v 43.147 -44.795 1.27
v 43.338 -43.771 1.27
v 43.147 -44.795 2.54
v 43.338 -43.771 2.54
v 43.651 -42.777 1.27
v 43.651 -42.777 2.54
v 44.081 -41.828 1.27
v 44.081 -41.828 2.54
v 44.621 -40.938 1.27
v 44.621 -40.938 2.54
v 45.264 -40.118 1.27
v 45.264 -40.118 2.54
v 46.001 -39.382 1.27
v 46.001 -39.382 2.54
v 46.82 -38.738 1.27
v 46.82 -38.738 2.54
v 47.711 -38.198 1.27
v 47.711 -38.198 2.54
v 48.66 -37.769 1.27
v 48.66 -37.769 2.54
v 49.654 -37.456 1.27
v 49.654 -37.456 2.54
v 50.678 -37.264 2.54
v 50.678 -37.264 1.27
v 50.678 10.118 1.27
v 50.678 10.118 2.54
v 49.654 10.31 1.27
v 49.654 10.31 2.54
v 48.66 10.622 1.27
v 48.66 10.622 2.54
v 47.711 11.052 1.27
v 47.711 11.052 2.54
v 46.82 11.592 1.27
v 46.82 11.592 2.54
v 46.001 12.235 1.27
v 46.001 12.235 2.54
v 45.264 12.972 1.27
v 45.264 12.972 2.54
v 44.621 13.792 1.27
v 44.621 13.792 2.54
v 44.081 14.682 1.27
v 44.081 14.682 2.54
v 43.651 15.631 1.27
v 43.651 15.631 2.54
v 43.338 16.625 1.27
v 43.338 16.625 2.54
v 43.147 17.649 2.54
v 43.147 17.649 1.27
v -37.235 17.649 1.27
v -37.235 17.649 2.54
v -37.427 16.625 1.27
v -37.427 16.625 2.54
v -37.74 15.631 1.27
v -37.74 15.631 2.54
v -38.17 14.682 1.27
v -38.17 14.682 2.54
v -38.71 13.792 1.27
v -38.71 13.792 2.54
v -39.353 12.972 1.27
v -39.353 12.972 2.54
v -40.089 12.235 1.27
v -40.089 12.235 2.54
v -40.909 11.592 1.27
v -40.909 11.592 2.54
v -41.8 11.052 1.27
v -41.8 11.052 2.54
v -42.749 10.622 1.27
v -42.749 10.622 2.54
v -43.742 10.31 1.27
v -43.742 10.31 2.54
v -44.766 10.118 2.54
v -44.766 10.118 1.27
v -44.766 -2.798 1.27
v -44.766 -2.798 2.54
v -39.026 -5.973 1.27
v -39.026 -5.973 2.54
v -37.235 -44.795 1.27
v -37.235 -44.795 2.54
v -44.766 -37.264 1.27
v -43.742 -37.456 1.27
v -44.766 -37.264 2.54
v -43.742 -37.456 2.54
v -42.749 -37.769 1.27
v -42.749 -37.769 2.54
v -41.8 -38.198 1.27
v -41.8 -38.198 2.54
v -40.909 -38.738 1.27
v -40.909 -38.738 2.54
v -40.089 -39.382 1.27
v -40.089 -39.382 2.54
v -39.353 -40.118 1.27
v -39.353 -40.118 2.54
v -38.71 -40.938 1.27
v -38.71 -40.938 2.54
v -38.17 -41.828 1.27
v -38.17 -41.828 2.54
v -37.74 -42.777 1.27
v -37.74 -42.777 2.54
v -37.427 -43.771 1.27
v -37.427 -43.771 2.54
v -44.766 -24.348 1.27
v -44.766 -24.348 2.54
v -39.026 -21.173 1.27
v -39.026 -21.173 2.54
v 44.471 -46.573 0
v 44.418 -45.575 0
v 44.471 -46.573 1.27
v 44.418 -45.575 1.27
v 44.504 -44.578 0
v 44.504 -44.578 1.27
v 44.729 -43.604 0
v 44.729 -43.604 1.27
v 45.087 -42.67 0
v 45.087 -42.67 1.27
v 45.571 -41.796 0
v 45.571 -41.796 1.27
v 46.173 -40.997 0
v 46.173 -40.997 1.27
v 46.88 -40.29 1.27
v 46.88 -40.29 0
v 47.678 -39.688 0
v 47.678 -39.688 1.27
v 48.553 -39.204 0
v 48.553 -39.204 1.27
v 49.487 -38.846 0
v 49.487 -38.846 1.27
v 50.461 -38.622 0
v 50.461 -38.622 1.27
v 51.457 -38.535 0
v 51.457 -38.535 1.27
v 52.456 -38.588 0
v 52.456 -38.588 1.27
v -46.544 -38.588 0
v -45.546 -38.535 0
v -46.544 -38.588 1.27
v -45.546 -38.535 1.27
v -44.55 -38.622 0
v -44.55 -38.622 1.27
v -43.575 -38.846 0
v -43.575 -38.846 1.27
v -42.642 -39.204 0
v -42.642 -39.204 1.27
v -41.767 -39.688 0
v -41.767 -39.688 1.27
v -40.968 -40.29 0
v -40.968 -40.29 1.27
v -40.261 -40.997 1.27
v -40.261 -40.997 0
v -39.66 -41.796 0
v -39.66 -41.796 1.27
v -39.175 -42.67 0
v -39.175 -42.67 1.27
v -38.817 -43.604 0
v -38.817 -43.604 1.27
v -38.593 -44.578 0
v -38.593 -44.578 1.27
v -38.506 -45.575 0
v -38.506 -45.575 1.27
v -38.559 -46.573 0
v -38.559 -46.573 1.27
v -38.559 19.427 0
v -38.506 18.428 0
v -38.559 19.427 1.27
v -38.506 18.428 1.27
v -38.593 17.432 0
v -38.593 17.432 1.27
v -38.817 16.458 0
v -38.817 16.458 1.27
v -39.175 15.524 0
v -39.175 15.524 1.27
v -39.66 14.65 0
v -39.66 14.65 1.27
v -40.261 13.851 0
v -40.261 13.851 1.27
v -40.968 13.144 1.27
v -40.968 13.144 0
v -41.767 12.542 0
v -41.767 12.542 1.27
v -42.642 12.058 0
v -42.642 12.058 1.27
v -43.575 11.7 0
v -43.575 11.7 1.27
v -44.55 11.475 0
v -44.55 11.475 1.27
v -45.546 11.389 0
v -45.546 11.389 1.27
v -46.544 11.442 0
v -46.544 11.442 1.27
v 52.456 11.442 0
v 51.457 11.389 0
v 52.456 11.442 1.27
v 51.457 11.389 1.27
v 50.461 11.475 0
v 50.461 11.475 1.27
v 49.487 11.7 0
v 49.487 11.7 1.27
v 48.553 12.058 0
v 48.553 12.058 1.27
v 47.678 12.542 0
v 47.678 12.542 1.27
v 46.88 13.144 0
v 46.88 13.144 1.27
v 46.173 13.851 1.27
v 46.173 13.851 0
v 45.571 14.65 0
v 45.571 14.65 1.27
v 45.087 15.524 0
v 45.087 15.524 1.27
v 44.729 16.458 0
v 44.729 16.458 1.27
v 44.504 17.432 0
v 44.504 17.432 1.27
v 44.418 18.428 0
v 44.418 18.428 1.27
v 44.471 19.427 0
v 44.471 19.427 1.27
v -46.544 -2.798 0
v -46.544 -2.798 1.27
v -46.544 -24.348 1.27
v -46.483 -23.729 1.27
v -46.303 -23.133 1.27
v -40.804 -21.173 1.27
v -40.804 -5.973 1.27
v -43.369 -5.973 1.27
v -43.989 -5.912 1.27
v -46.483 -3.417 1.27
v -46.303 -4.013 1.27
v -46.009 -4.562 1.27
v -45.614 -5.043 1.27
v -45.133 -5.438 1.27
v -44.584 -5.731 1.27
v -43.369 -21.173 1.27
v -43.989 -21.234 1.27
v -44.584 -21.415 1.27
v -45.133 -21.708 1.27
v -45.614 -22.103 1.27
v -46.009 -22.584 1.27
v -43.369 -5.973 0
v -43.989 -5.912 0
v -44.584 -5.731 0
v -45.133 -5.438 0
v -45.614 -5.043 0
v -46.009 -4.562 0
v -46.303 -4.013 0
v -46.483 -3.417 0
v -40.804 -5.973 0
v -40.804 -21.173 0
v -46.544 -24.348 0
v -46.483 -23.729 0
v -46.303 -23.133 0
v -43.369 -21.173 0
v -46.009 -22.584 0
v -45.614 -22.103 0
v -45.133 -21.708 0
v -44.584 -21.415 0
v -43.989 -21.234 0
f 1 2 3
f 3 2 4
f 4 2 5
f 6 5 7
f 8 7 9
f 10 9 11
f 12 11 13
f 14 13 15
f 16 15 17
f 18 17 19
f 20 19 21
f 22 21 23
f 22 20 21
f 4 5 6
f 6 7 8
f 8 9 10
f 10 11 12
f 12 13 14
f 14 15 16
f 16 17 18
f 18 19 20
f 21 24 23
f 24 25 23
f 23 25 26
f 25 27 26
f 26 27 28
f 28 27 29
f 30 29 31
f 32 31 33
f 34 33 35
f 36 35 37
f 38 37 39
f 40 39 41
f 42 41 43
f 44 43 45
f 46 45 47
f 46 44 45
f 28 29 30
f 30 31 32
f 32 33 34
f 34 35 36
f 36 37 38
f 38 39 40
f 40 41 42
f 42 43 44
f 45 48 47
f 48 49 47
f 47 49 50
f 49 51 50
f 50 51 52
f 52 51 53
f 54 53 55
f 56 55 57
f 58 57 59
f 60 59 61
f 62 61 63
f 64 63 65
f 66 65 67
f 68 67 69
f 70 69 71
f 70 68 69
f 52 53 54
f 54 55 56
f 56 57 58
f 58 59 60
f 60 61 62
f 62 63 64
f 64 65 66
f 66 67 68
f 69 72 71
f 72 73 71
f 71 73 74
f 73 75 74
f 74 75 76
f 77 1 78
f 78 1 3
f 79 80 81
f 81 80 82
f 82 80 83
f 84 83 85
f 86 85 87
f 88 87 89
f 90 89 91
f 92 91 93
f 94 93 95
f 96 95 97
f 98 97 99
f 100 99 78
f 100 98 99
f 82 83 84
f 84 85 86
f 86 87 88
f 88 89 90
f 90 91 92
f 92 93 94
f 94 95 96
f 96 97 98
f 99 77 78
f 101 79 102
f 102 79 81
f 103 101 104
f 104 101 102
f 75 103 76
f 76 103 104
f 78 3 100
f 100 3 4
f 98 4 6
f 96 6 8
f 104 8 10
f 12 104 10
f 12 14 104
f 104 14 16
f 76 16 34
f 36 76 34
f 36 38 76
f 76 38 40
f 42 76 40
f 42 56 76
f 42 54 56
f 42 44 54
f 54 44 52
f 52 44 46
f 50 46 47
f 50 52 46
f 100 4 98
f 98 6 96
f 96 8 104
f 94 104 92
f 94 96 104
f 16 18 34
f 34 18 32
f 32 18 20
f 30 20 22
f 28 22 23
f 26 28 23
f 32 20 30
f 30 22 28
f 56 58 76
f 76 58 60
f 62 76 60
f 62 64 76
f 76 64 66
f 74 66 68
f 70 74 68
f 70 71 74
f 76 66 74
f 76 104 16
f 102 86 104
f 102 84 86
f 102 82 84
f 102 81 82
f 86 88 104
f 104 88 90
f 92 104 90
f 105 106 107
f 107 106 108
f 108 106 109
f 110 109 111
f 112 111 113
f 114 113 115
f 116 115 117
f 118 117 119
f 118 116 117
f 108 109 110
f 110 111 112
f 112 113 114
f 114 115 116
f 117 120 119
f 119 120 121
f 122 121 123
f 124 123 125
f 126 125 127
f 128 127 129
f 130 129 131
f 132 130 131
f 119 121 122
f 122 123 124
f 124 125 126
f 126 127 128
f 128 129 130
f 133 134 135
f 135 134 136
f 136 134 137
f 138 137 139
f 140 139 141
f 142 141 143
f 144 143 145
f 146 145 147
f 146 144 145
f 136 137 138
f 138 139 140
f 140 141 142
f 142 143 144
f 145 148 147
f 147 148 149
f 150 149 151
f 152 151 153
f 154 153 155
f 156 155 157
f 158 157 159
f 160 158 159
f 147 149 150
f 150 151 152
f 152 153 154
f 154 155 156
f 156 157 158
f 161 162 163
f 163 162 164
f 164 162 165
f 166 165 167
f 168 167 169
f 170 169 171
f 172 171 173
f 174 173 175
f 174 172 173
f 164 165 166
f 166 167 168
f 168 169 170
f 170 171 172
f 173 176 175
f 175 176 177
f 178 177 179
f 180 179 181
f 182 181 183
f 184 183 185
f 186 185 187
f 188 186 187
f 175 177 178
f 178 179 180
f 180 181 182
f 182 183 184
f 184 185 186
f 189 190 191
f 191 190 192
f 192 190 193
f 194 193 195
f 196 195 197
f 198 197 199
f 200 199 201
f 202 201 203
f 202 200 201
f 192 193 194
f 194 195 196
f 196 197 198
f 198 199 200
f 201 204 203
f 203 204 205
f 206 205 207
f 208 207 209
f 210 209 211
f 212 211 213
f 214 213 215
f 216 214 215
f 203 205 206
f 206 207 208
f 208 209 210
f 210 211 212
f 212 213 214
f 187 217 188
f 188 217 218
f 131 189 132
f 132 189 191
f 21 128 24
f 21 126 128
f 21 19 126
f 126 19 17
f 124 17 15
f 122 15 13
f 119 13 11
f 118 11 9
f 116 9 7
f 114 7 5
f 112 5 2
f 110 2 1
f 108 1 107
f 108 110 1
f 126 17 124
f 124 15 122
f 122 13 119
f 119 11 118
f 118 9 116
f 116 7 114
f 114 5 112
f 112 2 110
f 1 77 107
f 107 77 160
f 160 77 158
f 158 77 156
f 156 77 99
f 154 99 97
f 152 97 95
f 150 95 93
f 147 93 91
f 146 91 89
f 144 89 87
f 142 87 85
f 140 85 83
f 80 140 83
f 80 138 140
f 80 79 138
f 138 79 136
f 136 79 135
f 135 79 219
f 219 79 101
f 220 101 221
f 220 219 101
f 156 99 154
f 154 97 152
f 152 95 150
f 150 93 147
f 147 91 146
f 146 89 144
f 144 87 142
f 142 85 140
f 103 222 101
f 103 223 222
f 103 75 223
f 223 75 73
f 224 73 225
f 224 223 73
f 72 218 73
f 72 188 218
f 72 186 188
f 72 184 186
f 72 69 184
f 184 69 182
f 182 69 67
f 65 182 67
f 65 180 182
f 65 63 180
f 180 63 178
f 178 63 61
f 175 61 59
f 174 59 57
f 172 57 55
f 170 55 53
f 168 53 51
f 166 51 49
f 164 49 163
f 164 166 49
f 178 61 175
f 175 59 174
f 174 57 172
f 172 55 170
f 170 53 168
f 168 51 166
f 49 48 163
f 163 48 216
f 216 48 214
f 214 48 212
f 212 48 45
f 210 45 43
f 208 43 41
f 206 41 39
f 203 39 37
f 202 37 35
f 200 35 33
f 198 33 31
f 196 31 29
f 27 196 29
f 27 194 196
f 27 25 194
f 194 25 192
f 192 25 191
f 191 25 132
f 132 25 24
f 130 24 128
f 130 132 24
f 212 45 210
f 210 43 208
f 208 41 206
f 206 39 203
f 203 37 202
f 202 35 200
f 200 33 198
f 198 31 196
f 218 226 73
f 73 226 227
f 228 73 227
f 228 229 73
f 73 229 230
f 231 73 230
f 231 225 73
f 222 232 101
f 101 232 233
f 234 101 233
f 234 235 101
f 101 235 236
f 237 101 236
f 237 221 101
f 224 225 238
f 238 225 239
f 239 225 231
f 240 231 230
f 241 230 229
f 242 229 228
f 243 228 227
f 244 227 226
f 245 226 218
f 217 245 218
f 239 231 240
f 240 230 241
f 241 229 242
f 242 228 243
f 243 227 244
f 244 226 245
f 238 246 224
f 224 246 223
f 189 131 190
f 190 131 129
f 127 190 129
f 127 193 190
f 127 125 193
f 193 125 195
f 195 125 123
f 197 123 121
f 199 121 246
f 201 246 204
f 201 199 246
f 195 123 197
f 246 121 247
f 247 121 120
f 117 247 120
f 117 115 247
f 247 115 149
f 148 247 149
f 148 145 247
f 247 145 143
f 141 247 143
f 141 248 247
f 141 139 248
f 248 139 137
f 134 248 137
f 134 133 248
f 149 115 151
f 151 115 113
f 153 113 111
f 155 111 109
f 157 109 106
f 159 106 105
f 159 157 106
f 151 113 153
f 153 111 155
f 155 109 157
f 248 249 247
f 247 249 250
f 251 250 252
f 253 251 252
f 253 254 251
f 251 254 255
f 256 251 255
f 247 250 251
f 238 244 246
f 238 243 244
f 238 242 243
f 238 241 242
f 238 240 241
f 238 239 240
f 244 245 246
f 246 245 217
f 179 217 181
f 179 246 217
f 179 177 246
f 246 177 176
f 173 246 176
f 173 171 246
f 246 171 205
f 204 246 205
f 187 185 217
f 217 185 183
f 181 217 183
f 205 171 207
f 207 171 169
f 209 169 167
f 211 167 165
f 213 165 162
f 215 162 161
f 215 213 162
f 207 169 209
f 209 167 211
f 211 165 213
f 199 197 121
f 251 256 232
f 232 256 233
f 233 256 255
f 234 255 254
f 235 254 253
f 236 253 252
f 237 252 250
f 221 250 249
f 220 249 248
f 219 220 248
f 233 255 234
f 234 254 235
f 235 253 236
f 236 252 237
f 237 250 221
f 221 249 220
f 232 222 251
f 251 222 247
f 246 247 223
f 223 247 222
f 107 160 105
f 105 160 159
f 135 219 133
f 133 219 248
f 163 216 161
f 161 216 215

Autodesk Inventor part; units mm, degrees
ref_plane "YZ Plane" through (0, 0, 0) normal (1, 0, 0) x (0, 1, 0)
ref_plane "XZ Plane" through (0, 0, 0) normal (0, 1, 0) x (-1, 0, 0)
ref_plane "XY Plane" through (0, 0, 0) normal (0, 0, 1) x (1, 0, 0)
sketch "Sketch1" plane through (0, 0, 0) normal (0, 0, 1) x (1, 0, 0)
  line L0 (-43.5443, 19.427) -> (49.4557, 19.427)
  line L1 (52.4557, 16.427) -> (52.4557, -43.573)
  line L2 (49.4557, -46.573) -> (-43.5443, -46.573)
  line L3 (-46.5443, -43.573) -> (-46.5443, 16.427)
  arc A0 (-43.5443, 19.427) -> (-46.5443, 16.427) centre (-43.5443, 16.427) ccw
  arc A1 (-46.5443, -43.573) -> (-43.5443, -46.573) centre (-43.5443, -43.573) ccw
  arc A2 (49.4557, -46.573) -> (52.4557, -43.573) centre (49.4557, -43.573) ccw
  arc A3 (52.4557, 16.427) -> (49.4557, 19.427) centre (49.4557, 16.427) ccw
  point P0 (0, 0)
  point P1 (0, 0)
  point P2 (-46.5443, 19.427)
  point P3 (52.4557, -46.573)
  point P4 (52.4557, 19.427)
  dimension "d0" = 99
  dimension "d1" = 66
  dimension "d2" = 3
extrude "Extrusion1" add sketch "Sketch1" along normal blind 1.27
sketch "Sketch2" plane through (0, 0, 1.27) normal (0, 0, 1) x (1, 0, 0)
  line L0 (-46.5443, 16.427) -> (-46.5443, -43.573) projected
  line L1 (49.4557, 19.427) -> (-43.5443, 19.427) projected
  circle A0 centre (-42.7343, 15.617) radius 1.5875
  line L2 (-50.0562, -13.573) -> (79.0191, -13.573) construction
  line L3 (2.9557, 30.2203) -> (2.9557, -48.7988) construction
  circle A1 centre (-42.7343, -42.763) radius 1.5875
  circle A2 centre (48.6457, 15.617) radius 1.5875
  circle A3 centre (48.6457, -42.763) radius 1.5875
  point P0 (0, 0)
  dimension "d8" = 3.175
  dimension "d9" = 3.81
  dimension "d10" = 3.81
extrude "Extrusion2" cut sketch "Sketch2" against normal blind 25.4
sketch "Sketch3" plane through (0, 0, 1.27) normal (0, 0, 1) x (1, 0, 0)
  circle A0 centre (48.6457, 15.617) radius 1.5875 projected
  circle A1 centre (-42.7343, 15.617) radius 1.5875 projected
  circle A2 centre (-42.7343, -42.763) radius 1.5875 projected
  circle A3 centre (48.6457, -42.763) radius 1.5875 projected
  line L0 (49.4557, 19.427) -> (-43.5443, 19.427) projected
  arc A4 (-43.5443, 19.427) -> (-46.5443, 16.427) centre (-43.5443, 16.427) ccw projected
  line L1 (-46.5443, 16.427) -> (-46.5443, -43.573) construction
  arc A5 (-46.5443, -43.573) -> (-43.5443, -46.573) centre (-43.5443, -43.573) ccw projected
  line L2 (-43.5443, -46.573) -> (49.4557, -46.573) projected
  arc A6 (49.4557, -46.573) -> (52.4557, -43.573) centre (49.4557, -43.573) ccw projected
  line L3 (52.4557, -43.573) -> (52.4557, 16.427) projected
  arc A7 (52.4557, 16.427) -> (49.4557, 19.427) centre (49.4557, 16.427) ccw projected
  arc A8 (-43.5443, 19.427) -> (-46.5443, 16.427) centre (-43.5443, 16.427) ccw projected
  line L4 (49.4557, 19.427) -> (-43.5443, 19.427) projected
  circle A9 centre (48.6457, 15.617) radius 1.5875 projected
  circle A10 centre (-42.7343, 15.617) radius 1.5875 projected
  circle A11 centre (-42.7343, -42.763) radius 1.5875 projected
  circle A12 centre (48.6457, -42.763) radius 1.5875 projected
  arc A13 (52.4557, 16.427) -> (49.4557, 19.427) centre (49.4557, 16.427) ccw projected
  line L5 (52.4557, 16.427) -> (52.4557, -43.573) projected
  arc A14 (49.4557, -46.573) -> (52.4557, -43.573) centre (49.4557, -43.573) ccw projected
  line L6 (49.4557, -46.573) -> (-43.5443, -46.573) projected
  arc A15 (-46.5443, -43.573) -> (-43.5443, -46.573) centre (-43.5443, -43.573) ccw projected
  line L7 (-46.5443, -43.573) -> (-46.5443, 16.427) projected
  arc A16 (-43.5443, 19.427) -> (-46.5443, 16.427) centre (-43.5443, 16.427) ccw projected
  line L8 (-43.5443, 19.427) -> (49.4557, 19.427) projected
  line L9 (-43.5443, 19.427) -> (49.4557, 19.427) projected
  line L10 (-40.8039, 19.427) -> (-40.8039, -46.573) construction
  line L11 (49.4557, -46.573) -> (-43.5443, -46.573) projected
  line L12 (-40.8039, 19.427) -> (-51.3078, 19.427) construction
  line L13 (-40.8039, -46.573) -> (-51.3078, -46.573) construction
  line L14 (-40.8039, -21.173) -> (-51.3078, -21.173) construction
  line L15 (-40.8039, -5.973) -> (-51.3078, -5.973) construction
  line L16 (-46.5443, -43.573) -> (-46.5443, 16.427) projected
  line L17 (-46.5443, -5.973) -> (-40.8039, -5.973)
  line L18 (-40.8039, -5.973) -> (-40.8039, -21.173)
  line L19 (-40.8039, -21.173) -> (-46.5443, -21.173)
  line L20 (-46.5443, -21.173) -> (-46.5443, -5.973)
  point P0 (0, 0)
  dimension "d13" = 25.4
  dimension "d14" = 25.4
  dimension "d15" = 5.7404
extrude "Extrusion3" cut sketch "Sketch3" against normal blind 25.4 contours L17 L18 L19 L7
fillet "Fillet1" radius 3.175 2 edges at (-46.5443, -21.173, 0.635) (-46.5443, -5.973, 0.635)
sketch "Sketch9" plane through (0, 0, 1.27) normal (0, 0, 1) x (1, 0, 0)
  arc A0 (-43.5443, 19.427) -> (-46.5443, 16.427) centre (-43.5443, 16.427) ccw projected
  line L0 (-46.5443, -2.798) -> (-46.5443, 16.427) construction
  line L1 (-46.5443, 16.427) -> (-46.5443, -2.798)
  line L2 (-43.5443, 19.427) -> (-26.5771, 19.427) construction
  line L3 (49.4557, 19.427) -> (-43.5443, 19.427) projected
  line L4 (-45.6657, 18.5483) -> (-26.5771, -0.5403) construction
  line L5 (-45.6657, 18.5483) -> (-18.6704, 18.5483) construction
  circle A1 centre (-45.6657, 18.5483) radius 7.1603
  arc A2 (-46.5443, -2.798) -> (-43.3693, -5.973) centre (-43.3693, -2.798) ccw projected
  line L6 (-43.3693, -5.973) -> (-40.8039, -5.973) projected
  line L7 (-40.8039, -5.973) -> (-40.8039, -21.173) projected
  line L8 (-40.8039, -21.173) -> (-43.3693, -21.173) projected
  arc A3 (-43.3693, -21.173) -> (-46.5443, -24.348) centre (-43.3693, -24.348) ccw projected
  line L9 (-46.5443, -24.348) -> (-46.5443, -43.573) projected
  arc A4 (-46.5443, -43.573) -> (-43.5443, -46.573) centre (-43.5443, -43.573) ccw projected
  line L10 (-43.5443, -46.573) -> (49.4557, -46.573) projected
  arc A5 (49.4557, -46.573) -> (52.4557, -43.573) centre (49.4557, -43.573) ccw projected
  line L11 (52.4557, -43.573) -> (52.4557, 16.427) projected
  arc A6 (52.4557, 16.427) -> (49.4557, 19.427) centre (49.4557, 16.427) ccw projected
  line L12 (49.4557, 19.427) -> (-43.5443, 19.427) projected
  arc A7 (-43.5443, 19.427) -> (-46.5443, 16.427) centre (-43.5443, 16.427) ccw projected
  line L13 (-46.5443, 16.427) -> (-46.5443, -2.798) projected
  circle A8 centre (48.6457, 15.617) radius 1.5875 projected
  circle A9 centre (-42.7343, 15.617) radius 1.5875 projected
  circle A10 centre (-42.7343, -42.763) radius 1.5875 projected
  circle A11 centre (48.6457, -42.763) radius 1.5875 projected
  line L14 (-75.7777, -13.573) -> (114.1059, -13.573) construction
  line L15 (2.9557, 31.1348) -> (2.9557, -53.319) construction
  circle A12 centre (-45.6657, -45.6944) radius 7.1603
  line L16 (2.9557, -58.2809) -> (2.9557, 26.1729) construction
  circle A13 centre (51.577, 18.5483) radius 7.1603
  circle A14 centre (51.577, -45.6944) radius 7.1603
  point P0 (0, 0)
  dimension "d28" = 45
extrude "Extrusion5" cut sketch "Sketch9" against normal blind 12.7 contours L3 A1 L1 A0 | A0 L1 A1 L3 | A13 L11 A6 L3 | L3 A6 L11 A13 | A14 L10 A5 L11 | L11 A5 L10 A14 | A12 L9 A4 L10 | L10 A4 L9 A12
sketch "Sketch10" plane through (0, 0, 1.27) normal (0, 0, 1) x (1, 0, 0)
  arc A0 (52.4557, -38.5882) -> (44.4708, -46.573) centre (51.577, -45.6944) ccw projected
  line L0 (52.4557, -38.5882) -> (52.4557, 11.4421) projected
  arc A1 (44.4708, 19.427) -> (52.4557, 11.4421) centre (51.577, 18.5483) ccw projected
  line L1 (44.4708, 19.427) -> (-38.5595, 19.427) projected
  arc A2 (-46.5443, 11.4421) -> (-38.5595, 19.427) centre (-45.6657, 18.5483) ccw projected
  line L2 (-46.5443, 11.4421) -> (-46.5443, -2.798) projected
  arc A3 (-46.5443, -2.798) -> (-43.3693, -5.973) centre (-43.3693, -2.798) ccw projected
  line L3 (-43.3693, -5.973) -> (-40.8039, -5.973) projected
  line L4 (-40.8039, -5.973) -> (-40.8039, -21.173) projected
  line L5 (-40.8039, -21.173) -> (-43.3693, -21.173) projected
  arc A4 (-43.3693, -21.173) -> (-46.5443, -24.348) centre (-43.3693, -24.348) ccw projected
  line L6 (-46.5443, -24.348) -> (-46.5443, -38.5882) projected
  arc A5 (-38.5595, -46.573) -> (-46.5443, -38.5882) centre (-45.6657, -45.6944) ccw projected
  line L7 (-38.5595, -46.573) -> (44.4708, -46.573) projected
  line L8 (-36.7645, -44.795) -> (43.1467, -44.795)
  line L9 (-36.7645, 17.649) -> (43.1467, 17.649)
  line L10 (44.4708, 19.427) -> (-38.5595, 19.427) projected
  line L11 (-36.7645, -44.795) -> (-37.2354, -44.795)
  arc A6 (-38.5595, -46.573) -> (-46.5443, -38.5882) centre (-45.6657, -45.6944) ccw projected
  line L12 (-36.7645, 17.649) -> (-37.2354, 17.649)
  line L13 (50.6777, 10.118) -> (50.6777, -37.264)
  arc A7 (44.4708, 19.427) -> (52.4557, 11.4421) centre (51.577, 18.5483) ccw projected
  line L14 (-39.0259, -5.973) -> (-39.0259, -21.173)
  line L15 (-44.7663, -2.798) -> (-39.0259, -5.973)
  line L16 (-39.0259, -21.173) -> (-44.7663, -24.348)
  line L17 (50.6777, 10.118) -> (52.4557, 10.118) construction
  line L18 (52.4557, -38.5882) -> (52.4557, 11.4421) projected
  line L19 (43.1467, 17.649) -> (43.1467, 19.427) construction
  arc A8 (43.1467, 17.649) -> (50.6777, 10.118) centre (51.7594, 18.7307) ccw
  line L20 (-56.5649, -13.573) -> (80.9191, -13.573) construction
  line L21 (2.9557, 34.2968) -> (2.9557, -68.6615) construction
  arc A9 (50.6777, -37.264) -> (43.1467, -44.795) centre (51.7594, -45.8768) ccw
  arc A10 (-44.7663, 10.118) -> (-37.2354, 17.649) centre (-45.8481, 18.7307) ccw
  arc A11 (-37.2354, -44.795) -> (-44.7663, -37.264) centre (-45.8481, -45.8768) ccw
  line L22 (-44.7663, 10.118) -> (-44.7663, -2.798)
  line L23 (-44.7663, -37.264) -> (-44.7663, -24.348)
  line L24 (-46.5443, -43.573) -> (-46.5443, -24.348) projected
  point P0 (0, 0)
  dimension "d31" = 1.778
  dimension "d32" = 1.778
  dimension "d35" = 1.778
  dimension "d36" = 1.778
  dimension "d39" = 3.175
  dimension "d40" = 3.175
  dimension "d42" = 1.27
  dimension "d43" = 1.27
  dimension "d44" = 1.778
  dimension "d56" = 1.778
extrude "Extrusion6" cut sketch "Sketch10" against normal blind 7.62 contours L11 A11 L23 L16 L14 L15 L22 A10 L12 L9 A8 L13 A9 L8
sketch "Sketch13" plane through (0, 0, 1.27) normal (0, 0, 1) x (1, 0, 0)
  arc A0 (50.6777, -37.264) -> (43.1467, -44.795) centre (51.7594, -45.8768) ccw projected
  line L0 (43.1467, -44.795) -> (-37.2354, -44.795) projected
  arc A1 (-37.2354, -44.795) -> (-44.7663, -37.264) centre (-45.8481, -45.8768) ccw projected
  line L1 (-44.7663, -37.264) -> (-44.7663, -24.348) projected
  line L2 (-44.7663, -24.348) -> (-39.0259, -21.173) projected
  line L3 (-39.0259, -21.173) -> (-39.0259, -5.973) projected
  line L4 (-39.0259, -5.973) -> (-44.7663, -2.798) projected
  line L5 (-44.7663, -2.798) -> (-44.7663, 10.118) projected
  arc A2 (-44.7663, 10.118) -> (-37.2354, 17.649) centre (-45.8481, 18.7307) ccw projected
  line L6 (-37.2354, 17.649) -> (43.1467, 17.649) projected
  arc A3 (43.1467, 17.649) -> (50.6777, 10.118) centre (51.7594, 18.7307) ccw projected
  line L7 (50.6777, 10.118) -> (50.6777, -37.264) projected
  arc A4 (52.4557, -38.5882) -> (44.4708, -46.573) centre (51.577, -45.6944) ccw projected
  line L8 (52.4557, -38.5882) -> (52.4557, 11.4421) projected
  arc A5 (44.4708, 19.427) -> (52.4557, 11.4421) centre (51.577, 18.5483) ccw projected
  line L9 (44.4708, 19.427) -> (-38.5595, 19.427) projected
  arc A6 (-46.5443, 11.4421) -> (-38.5595, 19.427) centre (-45.6657, 18.5483) ccw projected
  line L10 (-46.5443, 11.4421) -> (-46.5443, -2.798) projected
  arc A7 (-46.5443, -2.798) -> (-43.3693, -5.973) centre (-43.3693, -2.798) ccw projected
  line L11 (-43.3693, -5.973) -> (-40.8039, -5.973) projected
  line L12 (-40.8039, -5.973) -> (-40.8039, -21.173) projected
  line L13 (-40.8039, -21.173) -> (-43.3693, -21.173) projected
  arc A8 (-43.3693, -21.173) -> (-46.5443, -24.348) centre (-43.3693, -24.348) ccw projected
  line L14 (-46.5443, -24.348) -> (-46.5443, -38.5882) projected
  arc A9 (-38.5595, -46.573) -> (-46.5443, -38.5882) centre (-45.6657, -45.6944) ccw projected
  line L15 (-38.5595, -46.573) -> (44.4708, -46.573) projected
  point P0 (0, 0)
extrude "Extrusion9" add sketch "Sketch13" along normal blind 1.27 and the other way blind 1.27 contours A0 L0 A1 L1 L2 L3 L4 L5 A2 L6 A3 L7
properties part number "battbase_lid-shrink_final"
